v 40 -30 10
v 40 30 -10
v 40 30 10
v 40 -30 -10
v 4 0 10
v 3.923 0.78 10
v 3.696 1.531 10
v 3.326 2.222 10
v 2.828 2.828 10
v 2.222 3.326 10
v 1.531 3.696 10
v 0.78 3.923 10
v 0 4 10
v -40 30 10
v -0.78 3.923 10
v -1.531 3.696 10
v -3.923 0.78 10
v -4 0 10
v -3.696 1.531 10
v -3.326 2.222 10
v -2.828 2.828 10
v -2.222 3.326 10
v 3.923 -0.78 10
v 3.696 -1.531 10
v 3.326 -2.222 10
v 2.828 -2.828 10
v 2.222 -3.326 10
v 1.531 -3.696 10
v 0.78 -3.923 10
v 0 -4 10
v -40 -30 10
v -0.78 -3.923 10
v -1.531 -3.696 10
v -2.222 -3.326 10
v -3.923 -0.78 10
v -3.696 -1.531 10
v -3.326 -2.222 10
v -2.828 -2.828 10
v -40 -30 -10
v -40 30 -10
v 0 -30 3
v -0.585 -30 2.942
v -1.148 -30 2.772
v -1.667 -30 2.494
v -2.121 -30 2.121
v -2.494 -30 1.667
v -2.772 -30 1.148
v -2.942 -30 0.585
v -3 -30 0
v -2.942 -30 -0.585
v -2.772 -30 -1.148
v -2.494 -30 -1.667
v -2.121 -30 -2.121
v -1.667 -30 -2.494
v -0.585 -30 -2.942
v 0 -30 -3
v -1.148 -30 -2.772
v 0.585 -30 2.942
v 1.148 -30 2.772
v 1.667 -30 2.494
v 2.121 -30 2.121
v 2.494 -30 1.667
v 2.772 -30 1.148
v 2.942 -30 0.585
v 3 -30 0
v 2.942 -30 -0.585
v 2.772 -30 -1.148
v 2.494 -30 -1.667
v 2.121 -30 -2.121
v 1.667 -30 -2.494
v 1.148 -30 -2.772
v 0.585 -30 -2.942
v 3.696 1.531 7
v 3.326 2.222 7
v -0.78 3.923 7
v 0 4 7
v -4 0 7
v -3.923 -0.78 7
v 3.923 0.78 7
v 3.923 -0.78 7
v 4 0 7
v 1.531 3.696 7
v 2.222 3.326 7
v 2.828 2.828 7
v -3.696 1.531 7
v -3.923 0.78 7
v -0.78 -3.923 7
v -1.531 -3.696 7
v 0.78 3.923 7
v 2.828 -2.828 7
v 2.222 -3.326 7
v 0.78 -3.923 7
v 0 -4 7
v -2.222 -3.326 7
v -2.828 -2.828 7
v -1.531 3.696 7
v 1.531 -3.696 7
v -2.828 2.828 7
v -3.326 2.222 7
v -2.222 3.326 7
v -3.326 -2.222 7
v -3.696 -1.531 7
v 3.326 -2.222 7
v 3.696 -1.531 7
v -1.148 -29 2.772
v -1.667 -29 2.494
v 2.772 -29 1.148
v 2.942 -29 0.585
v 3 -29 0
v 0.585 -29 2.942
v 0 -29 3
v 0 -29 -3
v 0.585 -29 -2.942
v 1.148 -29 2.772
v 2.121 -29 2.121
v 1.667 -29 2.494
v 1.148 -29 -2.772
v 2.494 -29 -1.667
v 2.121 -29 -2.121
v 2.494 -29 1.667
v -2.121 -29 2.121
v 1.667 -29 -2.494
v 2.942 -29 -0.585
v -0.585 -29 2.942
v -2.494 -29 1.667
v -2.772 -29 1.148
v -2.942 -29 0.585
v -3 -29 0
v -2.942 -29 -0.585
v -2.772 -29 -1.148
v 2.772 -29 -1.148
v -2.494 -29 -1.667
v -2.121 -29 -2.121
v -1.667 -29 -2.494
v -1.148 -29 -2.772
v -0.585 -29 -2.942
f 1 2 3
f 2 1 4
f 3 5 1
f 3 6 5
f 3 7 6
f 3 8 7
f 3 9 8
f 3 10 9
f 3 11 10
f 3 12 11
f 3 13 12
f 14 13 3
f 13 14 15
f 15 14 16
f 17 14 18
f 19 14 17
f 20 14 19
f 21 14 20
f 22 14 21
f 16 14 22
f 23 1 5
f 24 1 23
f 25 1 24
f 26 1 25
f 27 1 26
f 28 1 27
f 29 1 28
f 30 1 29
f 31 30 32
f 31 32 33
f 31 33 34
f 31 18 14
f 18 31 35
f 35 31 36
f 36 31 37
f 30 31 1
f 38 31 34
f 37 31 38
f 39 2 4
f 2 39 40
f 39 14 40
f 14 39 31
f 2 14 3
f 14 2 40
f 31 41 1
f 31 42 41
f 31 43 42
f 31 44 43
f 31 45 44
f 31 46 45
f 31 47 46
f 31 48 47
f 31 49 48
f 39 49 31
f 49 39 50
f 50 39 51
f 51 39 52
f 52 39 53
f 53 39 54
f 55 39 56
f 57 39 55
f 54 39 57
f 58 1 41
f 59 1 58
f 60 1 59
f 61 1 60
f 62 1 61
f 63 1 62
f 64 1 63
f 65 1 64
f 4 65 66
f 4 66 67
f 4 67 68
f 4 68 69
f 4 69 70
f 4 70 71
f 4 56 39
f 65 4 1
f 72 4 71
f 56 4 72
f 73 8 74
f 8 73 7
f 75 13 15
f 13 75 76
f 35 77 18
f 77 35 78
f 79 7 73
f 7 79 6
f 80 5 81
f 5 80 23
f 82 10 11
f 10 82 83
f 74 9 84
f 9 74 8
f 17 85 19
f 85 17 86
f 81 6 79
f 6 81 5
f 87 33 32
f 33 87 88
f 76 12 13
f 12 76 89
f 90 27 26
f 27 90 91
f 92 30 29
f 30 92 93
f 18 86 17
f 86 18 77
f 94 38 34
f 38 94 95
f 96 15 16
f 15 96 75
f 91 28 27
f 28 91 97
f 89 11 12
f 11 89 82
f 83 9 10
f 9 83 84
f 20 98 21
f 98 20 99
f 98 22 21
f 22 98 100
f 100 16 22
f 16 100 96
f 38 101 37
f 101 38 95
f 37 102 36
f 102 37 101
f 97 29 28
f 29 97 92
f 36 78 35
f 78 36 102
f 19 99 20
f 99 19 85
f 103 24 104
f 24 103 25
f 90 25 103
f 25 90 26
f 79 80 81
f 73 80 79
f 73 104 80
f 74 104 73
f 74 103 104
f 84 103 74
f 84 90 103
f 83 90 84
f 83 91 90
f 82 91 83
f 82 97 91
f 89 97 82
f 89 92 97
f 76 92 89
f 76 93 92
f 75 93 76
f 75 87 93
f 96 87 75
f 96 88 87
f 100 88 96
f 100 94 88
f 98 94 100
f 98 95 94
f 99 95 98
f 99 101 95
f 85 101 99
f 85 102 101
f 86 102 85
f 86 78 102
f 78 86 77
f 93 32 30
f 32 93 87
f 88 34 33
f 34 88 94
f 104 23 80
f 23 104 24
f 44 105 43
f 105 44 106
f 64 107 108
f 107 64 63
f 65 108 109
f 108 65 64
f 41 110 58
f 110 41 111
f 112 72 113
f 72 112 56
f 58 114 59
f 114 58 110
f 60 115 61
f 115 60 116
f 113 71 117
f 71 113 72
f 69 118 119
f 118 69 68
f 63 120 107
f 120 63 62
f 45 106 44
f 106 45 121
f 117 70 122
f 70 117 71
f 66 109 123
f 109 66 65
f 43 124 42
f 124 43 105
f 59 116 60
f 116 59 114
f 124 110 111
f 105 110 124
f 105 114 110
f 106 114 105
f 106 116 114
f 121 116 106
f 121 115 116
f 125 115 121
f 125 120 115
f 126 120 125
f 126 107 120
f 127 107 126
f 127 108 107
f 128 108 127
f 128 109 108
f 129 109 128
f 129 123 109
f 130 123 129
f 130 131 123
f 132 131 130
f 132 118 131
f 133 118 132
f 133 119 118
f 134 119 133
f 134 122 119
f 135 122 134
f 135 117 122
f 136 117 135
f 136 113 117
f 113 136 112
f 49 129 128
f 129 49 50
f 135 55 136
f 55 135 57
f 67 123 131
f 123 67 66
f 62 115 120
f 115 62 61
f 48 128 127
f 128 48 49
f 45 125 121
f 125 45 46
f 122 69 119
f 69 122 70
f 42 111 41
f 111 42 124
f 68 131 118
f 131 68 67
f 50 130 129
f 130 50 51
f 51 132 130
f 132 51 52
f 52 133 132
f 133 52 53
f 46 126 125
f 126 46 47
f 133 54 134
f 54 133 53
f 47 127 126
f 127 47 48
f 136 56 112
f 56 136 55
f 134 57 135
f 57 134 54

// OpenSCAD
// 示例：带圆孔的长方体外壳
// 用于演示几何标注功能
// 单位：mm

wall_thickness = 3;
width = 80;
depth = 60;
height = 20;
hole_diameter = 8;

difference() {
    // 主体
    cube([width, depth, height], center=true);

    // 顶面中心孔
    translate([0, 0, height/2 - wall_thickness])
        cylinder(h = wall_thickness + 1, d = hole_diameter, center = false, $fn = 32);

    // 前面 USB 口开孔
    translate([0, -depth/2, 0])
        rotate([90, 0, 0])
        translate([0, 0, -1])
        cylinder(h = wall_thickness + 2, d = 6, center = false, $fn = 32);
}
